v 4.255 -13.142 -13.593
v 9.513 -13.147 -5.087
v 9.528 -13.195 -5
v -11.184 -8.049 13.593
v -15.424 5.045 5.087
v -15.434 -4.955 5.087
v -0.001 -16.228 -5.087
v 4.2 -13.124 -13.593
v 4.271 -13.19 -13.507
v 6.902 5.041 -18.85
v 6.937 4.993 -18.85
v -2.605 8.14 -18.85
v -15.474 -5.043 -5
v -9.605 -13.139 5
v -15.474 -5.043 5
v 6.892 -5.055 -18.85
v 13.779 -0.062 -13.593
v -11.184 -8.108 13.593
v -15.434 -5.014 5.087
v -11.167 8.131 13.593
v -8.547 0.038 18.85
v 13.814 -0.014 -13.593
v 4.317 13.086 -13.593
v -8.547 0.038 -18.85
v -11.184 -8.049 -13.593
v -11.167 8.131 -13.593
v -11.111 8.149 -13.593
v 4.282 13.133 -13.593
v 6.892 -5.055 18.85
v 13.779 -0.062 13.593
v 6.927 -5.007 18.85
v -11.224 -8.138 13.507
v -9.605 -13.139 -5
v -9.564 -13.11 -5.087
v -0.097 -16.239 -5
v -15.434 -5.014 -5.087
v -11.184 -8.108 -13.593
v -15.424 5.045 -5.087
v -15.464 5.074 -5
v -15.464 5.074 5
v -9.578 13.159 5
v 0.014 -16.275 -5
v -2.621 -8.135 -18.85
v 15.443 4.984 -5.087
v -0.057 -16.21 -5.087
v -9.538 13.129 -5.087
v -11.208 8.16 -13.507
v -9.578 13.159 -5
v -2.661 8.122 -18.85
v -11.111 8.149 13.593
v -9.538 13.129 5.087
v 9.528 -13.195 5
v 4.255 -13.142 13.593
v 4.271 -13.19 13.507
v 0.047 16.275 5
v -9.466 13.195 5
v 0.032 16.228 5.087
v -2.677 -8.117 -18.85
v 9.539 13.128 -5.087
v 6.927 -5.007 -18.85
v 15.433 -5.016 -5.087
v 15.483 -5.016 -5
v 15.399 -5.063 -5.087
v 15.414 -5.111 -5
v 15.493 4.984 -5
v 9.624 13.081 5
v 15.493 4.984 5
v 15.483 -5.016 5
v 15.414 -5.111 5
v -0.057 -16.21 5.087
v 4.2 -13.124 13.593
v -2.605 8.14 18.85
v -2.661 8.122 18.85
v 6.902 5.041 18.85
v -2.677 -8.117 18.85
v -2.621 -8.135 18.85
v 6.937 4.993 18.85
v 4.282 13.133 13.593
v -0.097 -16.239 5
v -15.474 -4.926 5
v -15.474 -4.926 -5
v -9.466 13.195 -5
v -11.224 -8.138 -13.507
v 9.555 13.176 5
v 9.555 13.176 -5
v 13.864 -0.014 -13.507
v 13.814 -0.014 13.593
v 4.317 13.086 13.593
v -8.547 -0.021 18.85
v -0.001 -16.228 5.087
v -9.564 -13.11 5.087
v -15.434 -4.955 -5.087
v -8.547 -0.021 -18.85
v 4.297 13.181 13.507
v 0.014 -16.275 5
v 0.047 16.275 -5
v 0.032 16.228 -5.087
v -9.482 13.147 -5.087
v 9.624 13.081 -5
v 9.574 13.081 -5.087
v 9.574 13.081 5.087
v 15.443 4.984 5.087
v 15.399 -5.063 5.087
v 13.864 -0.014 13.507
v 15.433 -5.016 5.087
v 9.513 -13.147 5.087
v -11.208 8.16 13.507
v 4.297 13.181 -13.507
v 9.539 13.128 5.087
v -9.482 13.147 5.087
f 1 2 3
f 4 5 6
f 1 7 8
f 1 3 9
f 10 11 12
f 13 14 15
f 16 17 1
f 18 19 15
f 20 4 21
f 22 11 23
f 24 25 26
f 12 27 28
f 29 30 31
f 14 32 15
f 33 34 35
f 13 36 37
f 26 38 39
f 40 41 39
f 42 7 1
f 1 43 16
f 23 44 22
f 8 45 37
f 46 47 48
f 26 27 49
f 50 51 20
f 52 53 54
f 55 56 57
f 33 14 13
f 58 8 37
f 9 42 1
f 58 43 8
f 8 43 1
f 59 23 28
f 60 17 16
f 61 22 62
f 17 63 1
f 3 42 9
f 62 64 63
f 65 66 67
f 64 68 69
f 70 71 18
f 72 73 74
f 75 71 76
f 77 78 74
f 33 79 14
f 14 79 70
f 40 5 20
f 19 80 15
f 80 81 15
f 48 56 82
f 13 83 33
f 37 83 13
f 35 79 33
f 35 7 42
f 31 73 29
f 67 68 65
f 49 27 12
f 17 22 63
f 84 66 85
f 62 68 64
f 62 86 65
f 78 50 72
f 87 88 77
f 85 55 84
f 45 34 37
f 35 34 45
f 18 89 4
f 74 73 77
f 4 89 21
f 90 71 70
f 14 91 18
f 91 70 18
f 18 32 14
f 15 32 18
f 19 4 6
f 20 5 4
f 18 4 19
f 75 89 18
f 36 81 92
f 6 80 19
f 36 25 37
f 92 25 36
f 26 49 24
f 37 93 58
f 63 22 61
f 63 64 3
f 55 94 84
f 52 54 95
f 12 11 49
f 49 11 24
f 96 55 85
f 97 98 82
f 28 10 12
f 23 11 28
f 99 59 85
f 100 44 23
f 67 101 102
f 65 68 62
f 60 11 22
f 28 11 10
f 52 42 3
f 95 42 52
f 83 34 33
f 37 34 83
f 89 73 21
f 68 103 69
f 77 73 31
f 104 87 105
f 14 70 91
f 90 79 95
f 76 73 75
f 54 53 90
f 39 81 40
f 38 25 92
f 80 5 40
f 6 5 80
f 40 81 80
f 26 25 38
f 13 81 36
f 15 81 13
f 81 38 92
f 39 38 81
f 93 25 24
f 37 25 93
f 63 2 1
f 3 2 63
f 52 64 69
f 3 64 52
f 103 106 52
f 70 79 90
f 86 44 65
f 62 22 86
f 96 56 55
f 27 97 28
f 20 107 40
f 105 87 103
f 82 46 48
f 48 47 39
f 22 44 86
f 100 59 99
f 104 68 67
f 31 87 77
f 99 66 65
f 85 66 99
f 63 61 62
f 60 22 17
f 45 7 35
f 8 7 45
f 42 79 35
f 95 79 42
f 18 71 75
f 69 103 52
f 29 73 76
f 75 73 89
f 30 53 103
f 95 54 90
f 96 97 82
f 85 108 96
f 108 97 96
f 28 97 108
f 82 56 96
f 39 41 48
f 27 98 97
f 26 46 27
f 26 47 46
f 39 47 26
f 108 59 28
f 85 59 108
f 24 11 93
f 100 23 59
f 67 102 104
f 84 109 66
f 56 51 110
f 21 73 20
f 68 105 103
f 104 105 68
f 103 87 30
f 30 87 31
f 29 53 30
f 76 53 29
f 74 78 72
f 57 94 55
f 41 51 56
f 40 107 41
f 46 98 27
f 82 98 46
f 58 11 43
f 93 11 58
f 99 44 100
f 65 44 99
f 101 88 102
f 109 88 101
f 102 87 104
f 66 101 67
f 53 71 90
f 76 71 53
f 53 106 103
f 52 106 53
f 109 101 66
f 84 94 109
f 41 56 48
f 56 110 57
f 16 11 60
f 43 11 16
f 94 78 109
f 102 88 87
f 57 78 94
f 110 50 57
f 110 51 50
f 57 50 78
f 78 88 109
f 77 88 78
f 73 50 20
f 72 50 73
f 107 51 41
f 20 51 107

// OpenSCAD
// Auto-generated OpenSCAD file

    inner_points = 10*[[-0.0016418331040251556, -1.6180331557585415, -0.5000000000000097], [-0.0016418331038291958, -1.6180331557585472, 0.49999999999999034], [0.0016418331038291958, 1.6180331557585472, -0.49999999999999034], [0.0016418331040251556, 1.6180331557585415, 0.5000000000000097], [-0.952384297558225, -1.3080512751855717, -0.4999999999998215], [-0.9523842975580289, -1.3080512751855777, 0.5000000000001786], [0.94972775579202, -1.3099813657559998, -0.5000000000001942], [0.949727755792216, -1.3099813657560058, 0.4999999999998058], [-0.949727755792216, 1.3099813657560058, -0.4999999999998058], [-0.94972775579202, 1.3099813657559998, 0.5000000000001942], [0.9523842975580289, 1.3080512751855777, -0.5000000000001786], [0.952384297558225, 1.3080512751855717, 0.4999999999998215], [-1.5393483306969136, -0.4984382665193544, -0.49999999999970146], [-1.5393483306967177, -0.4984382665193606, 0.5000000000002985], [1.5383336220346362, -0.5015612186636724, -0.5000000000003045], [1.538333622034832, -0.5015612186636786, 0.49999999999969547], [-1.538333622034832, 0.5015612186636786, -0.49999999999969547], [-1.5383336220346362, 0.5015612186636724, 0.5000000000003045], [1.5393483306967177, 0.4984382665193606, -0.5000000000002985], [1.5393483306969136, 0.4984382665193544, 0.49999999999970146], [-0.2636863372842498, -0.808749845922564, -1.876381920471127], [-0.26368633728351437, -0.8087498459225871, 1.8763819204712202], [-0.2620445041803226, 0.8092833098359803, -1.8763819204711172], [-0.2620445041795872, 0.8092833098359572, 1.87638192047123], [0.6876832516117953, -0.5006980559200224, -1.8763819204713112], [0.6876832516125307, -0.5006980559200455, 1.876381920471036], [0.6886979602738771, 0.49930142926301074, -1.8763819204713055], [0.6886979602746125, 0.49930142926298754, 1.8763819204710417], [-0.8506503704229385, 0.0008631627436532224, -1.8763819204710068], [-0.850650370422203, 0.0008631627436300636, 1.8763819204713403], [0.42399691432801623, -1.3094479018426013, -1.350650808352131], [0.4239969143285456, -1.309447901842618, 1.3506508083519488], [0.42665345609402516, 1.3085847390989762, -1.3506508083521154], [0.4266534560945545, 1.3085847390989596, 1.3506508083519644], [-1.1143367077067177, -0.8078866831789255, -1.3506508083518265], [-1.1143367077061885, -0.8078866831789423, 1.3506508083522533], [-1.1126948746027905, 0.8101464725796188, -1.3506508083518167], [-1.1126948746022614, 0.810146472579602, 1.350650808352263], [1.3763812118861432, -0.0013966266570264558, -1.3506508083523097], [1.3763812118866725, -0.0013966266570431258, 1.35065080835177]];

    outer_points = 10*[[1.6180016504227956, 0.49997195375907766, -0.011519263576068448], [1.618042389272906, -0.49997195375907766, -0.0009277501021131744], [-1.618042389272906, 0.49997195375907766, 0.0009277501021131744], [-1.6180016504227956, -0.49997195375907766, 0.011519263576068448], [1.3053290615582724, 0.4898987513388698, -0.961326813959702], [1.3053698004083825, -0.5100451561792856, -0.9507353004857466], [1.312644822251197, 0.5100451561792856, 0.9406654548908802], [1.312685561101307, -0.4898987513388698, 0.9512569683648355], [-1.312685561101307, 0.4898987513388698, -0.9512569683648355], [-1.312644822251197, -0.5100451561792856, -0.9406654548908802], [-1.3053698004083825, 0.5100451561792856, 0.9507353004857466], [-1.3053290615582724, -0.4898987513388698, 0.961326813959702], [0.494057357253453, 0.4836731698676236, -1.5459629947847504], [0.49409809610356314, -0.5162707376505317, -1.5353714813107953], [0.5058945067081656, 0.5162707376505317, 1.5315251425550196], [0.5059352455582757, -0.4836731698676236, 1.5421166560289747], [-0.5059352455582757, 0.4836731698676236, -1.5421166560289747], [-0.5058945067081656, -0.5162707376505317, -1.5315251425550196], [-0.49409809610356314, 0.5162707376505317, 1.5353714813107953], [-0.494057357253453, -0.4836731698676236, 1.5459629947847504], [0.8079235550197118, 1.8734925048785318, -0.28583434473369956], [0.8080764383033266, -1.8790608342261998, -0.24608689594778654], [-0.810098464828139, 1.8734925048785318, -0.2796108378946088], [-0.8099455815445241, -1.8790608342261998, -0.23986338910869576], [0.5025667268481131, 1.8835657072987397, 0.6663503737332491], [0.5027196101317281, -1.868987631805992, 0.7060978225191622], [-0.49742587596361565, 1.8835657072987397, 0.6701967124890246], [-0.49727299268000075, -1.868987631805992, 0.7099441612749376], [-0.0033481492851075404, 1.8672669234072858, -0.8704705255587479], [-0.003195266001492647, -1.8852864156974458, -0.8307230767728349], [1.3105881411906073, 1.355079920068634, 0.4059580415501933], [1.3106981891122724, -1.3460701739235539, 0.4345689140207317], [-1.3074264814689722, 1.355079920068634, 0.41602788714505967], [-1.307316433547307, -1.3460701739235539, 0.44463875961559807], [0.8046732650573866, 1.33878113617718, -1.130862857741804], [0.8047833129790517, -1.362368957815008, -1.1022519852712656], [-0.8133487547904642, 1.33878113617718, -1.124639350902713], [-0.8132387068687991, -1.362368957815008, -1.0960284784321745], [0.00523871020727978, 1.365153122488842, 1.3619890987729175], [0.005348758128944959, -1.335996971503346, 1.390599971243456]];

    // Convex hull for inner set (I)
    module inner_hull() {
        hull() {
            for (p = inner_points) {
                translate(p) sphere(r=0.1);
            }
        }
    }

    // Convex hull for outer set (O) minus inner hull (O \ I)
    module outer_minus_inner() {
        difference() {
            hull() {
                for (p = outer_points) {
                    translate(p) sphere(r=0.1);
                }
            }
            inner_hull(); // Subtract inner hull
        }
    }

    // Convex hull for outer set (O) minus all translated inner hulls
    module outer_minus_AllTranslationInner() {
        difference() {
            hull() {
                for (p = outer_points) {
                    translate(p) sphere(r=0.1);
                }
            }
            hull() {
                translate([0,0,50]) inner_hull();
                translate([0,0,-50]) inner_hull();
            }; // Subtract translated inner hulls
        }
    }

    // Difference between outer_minus_inner and outer_minus_AllTranslationInner
    module outer_minus_inner_diff() {
        difference() {
            // Outer minus inner
            difference() {
                hull() {
                    for (p = outer_points) {
                        translate(p) sphere(r=0.1);
                    }
                }
                inner_hull();
            }

            // Subtract Outer minus AllTranslationInner
            difference() {
                hull() {
                    for (p = outer_points) {
                        translate(p) sphere(r=0.1);
                    }
                }
                hull() {
                    translate([0,0,50]) inner_hull();
                    translate([0,0,-50]) inner_hull();
                };
            }
        }
    }

    // Rendering all with colors applied
    color([1, 0, 0, 0.5]) inner_hull(); // Transparent red
    
